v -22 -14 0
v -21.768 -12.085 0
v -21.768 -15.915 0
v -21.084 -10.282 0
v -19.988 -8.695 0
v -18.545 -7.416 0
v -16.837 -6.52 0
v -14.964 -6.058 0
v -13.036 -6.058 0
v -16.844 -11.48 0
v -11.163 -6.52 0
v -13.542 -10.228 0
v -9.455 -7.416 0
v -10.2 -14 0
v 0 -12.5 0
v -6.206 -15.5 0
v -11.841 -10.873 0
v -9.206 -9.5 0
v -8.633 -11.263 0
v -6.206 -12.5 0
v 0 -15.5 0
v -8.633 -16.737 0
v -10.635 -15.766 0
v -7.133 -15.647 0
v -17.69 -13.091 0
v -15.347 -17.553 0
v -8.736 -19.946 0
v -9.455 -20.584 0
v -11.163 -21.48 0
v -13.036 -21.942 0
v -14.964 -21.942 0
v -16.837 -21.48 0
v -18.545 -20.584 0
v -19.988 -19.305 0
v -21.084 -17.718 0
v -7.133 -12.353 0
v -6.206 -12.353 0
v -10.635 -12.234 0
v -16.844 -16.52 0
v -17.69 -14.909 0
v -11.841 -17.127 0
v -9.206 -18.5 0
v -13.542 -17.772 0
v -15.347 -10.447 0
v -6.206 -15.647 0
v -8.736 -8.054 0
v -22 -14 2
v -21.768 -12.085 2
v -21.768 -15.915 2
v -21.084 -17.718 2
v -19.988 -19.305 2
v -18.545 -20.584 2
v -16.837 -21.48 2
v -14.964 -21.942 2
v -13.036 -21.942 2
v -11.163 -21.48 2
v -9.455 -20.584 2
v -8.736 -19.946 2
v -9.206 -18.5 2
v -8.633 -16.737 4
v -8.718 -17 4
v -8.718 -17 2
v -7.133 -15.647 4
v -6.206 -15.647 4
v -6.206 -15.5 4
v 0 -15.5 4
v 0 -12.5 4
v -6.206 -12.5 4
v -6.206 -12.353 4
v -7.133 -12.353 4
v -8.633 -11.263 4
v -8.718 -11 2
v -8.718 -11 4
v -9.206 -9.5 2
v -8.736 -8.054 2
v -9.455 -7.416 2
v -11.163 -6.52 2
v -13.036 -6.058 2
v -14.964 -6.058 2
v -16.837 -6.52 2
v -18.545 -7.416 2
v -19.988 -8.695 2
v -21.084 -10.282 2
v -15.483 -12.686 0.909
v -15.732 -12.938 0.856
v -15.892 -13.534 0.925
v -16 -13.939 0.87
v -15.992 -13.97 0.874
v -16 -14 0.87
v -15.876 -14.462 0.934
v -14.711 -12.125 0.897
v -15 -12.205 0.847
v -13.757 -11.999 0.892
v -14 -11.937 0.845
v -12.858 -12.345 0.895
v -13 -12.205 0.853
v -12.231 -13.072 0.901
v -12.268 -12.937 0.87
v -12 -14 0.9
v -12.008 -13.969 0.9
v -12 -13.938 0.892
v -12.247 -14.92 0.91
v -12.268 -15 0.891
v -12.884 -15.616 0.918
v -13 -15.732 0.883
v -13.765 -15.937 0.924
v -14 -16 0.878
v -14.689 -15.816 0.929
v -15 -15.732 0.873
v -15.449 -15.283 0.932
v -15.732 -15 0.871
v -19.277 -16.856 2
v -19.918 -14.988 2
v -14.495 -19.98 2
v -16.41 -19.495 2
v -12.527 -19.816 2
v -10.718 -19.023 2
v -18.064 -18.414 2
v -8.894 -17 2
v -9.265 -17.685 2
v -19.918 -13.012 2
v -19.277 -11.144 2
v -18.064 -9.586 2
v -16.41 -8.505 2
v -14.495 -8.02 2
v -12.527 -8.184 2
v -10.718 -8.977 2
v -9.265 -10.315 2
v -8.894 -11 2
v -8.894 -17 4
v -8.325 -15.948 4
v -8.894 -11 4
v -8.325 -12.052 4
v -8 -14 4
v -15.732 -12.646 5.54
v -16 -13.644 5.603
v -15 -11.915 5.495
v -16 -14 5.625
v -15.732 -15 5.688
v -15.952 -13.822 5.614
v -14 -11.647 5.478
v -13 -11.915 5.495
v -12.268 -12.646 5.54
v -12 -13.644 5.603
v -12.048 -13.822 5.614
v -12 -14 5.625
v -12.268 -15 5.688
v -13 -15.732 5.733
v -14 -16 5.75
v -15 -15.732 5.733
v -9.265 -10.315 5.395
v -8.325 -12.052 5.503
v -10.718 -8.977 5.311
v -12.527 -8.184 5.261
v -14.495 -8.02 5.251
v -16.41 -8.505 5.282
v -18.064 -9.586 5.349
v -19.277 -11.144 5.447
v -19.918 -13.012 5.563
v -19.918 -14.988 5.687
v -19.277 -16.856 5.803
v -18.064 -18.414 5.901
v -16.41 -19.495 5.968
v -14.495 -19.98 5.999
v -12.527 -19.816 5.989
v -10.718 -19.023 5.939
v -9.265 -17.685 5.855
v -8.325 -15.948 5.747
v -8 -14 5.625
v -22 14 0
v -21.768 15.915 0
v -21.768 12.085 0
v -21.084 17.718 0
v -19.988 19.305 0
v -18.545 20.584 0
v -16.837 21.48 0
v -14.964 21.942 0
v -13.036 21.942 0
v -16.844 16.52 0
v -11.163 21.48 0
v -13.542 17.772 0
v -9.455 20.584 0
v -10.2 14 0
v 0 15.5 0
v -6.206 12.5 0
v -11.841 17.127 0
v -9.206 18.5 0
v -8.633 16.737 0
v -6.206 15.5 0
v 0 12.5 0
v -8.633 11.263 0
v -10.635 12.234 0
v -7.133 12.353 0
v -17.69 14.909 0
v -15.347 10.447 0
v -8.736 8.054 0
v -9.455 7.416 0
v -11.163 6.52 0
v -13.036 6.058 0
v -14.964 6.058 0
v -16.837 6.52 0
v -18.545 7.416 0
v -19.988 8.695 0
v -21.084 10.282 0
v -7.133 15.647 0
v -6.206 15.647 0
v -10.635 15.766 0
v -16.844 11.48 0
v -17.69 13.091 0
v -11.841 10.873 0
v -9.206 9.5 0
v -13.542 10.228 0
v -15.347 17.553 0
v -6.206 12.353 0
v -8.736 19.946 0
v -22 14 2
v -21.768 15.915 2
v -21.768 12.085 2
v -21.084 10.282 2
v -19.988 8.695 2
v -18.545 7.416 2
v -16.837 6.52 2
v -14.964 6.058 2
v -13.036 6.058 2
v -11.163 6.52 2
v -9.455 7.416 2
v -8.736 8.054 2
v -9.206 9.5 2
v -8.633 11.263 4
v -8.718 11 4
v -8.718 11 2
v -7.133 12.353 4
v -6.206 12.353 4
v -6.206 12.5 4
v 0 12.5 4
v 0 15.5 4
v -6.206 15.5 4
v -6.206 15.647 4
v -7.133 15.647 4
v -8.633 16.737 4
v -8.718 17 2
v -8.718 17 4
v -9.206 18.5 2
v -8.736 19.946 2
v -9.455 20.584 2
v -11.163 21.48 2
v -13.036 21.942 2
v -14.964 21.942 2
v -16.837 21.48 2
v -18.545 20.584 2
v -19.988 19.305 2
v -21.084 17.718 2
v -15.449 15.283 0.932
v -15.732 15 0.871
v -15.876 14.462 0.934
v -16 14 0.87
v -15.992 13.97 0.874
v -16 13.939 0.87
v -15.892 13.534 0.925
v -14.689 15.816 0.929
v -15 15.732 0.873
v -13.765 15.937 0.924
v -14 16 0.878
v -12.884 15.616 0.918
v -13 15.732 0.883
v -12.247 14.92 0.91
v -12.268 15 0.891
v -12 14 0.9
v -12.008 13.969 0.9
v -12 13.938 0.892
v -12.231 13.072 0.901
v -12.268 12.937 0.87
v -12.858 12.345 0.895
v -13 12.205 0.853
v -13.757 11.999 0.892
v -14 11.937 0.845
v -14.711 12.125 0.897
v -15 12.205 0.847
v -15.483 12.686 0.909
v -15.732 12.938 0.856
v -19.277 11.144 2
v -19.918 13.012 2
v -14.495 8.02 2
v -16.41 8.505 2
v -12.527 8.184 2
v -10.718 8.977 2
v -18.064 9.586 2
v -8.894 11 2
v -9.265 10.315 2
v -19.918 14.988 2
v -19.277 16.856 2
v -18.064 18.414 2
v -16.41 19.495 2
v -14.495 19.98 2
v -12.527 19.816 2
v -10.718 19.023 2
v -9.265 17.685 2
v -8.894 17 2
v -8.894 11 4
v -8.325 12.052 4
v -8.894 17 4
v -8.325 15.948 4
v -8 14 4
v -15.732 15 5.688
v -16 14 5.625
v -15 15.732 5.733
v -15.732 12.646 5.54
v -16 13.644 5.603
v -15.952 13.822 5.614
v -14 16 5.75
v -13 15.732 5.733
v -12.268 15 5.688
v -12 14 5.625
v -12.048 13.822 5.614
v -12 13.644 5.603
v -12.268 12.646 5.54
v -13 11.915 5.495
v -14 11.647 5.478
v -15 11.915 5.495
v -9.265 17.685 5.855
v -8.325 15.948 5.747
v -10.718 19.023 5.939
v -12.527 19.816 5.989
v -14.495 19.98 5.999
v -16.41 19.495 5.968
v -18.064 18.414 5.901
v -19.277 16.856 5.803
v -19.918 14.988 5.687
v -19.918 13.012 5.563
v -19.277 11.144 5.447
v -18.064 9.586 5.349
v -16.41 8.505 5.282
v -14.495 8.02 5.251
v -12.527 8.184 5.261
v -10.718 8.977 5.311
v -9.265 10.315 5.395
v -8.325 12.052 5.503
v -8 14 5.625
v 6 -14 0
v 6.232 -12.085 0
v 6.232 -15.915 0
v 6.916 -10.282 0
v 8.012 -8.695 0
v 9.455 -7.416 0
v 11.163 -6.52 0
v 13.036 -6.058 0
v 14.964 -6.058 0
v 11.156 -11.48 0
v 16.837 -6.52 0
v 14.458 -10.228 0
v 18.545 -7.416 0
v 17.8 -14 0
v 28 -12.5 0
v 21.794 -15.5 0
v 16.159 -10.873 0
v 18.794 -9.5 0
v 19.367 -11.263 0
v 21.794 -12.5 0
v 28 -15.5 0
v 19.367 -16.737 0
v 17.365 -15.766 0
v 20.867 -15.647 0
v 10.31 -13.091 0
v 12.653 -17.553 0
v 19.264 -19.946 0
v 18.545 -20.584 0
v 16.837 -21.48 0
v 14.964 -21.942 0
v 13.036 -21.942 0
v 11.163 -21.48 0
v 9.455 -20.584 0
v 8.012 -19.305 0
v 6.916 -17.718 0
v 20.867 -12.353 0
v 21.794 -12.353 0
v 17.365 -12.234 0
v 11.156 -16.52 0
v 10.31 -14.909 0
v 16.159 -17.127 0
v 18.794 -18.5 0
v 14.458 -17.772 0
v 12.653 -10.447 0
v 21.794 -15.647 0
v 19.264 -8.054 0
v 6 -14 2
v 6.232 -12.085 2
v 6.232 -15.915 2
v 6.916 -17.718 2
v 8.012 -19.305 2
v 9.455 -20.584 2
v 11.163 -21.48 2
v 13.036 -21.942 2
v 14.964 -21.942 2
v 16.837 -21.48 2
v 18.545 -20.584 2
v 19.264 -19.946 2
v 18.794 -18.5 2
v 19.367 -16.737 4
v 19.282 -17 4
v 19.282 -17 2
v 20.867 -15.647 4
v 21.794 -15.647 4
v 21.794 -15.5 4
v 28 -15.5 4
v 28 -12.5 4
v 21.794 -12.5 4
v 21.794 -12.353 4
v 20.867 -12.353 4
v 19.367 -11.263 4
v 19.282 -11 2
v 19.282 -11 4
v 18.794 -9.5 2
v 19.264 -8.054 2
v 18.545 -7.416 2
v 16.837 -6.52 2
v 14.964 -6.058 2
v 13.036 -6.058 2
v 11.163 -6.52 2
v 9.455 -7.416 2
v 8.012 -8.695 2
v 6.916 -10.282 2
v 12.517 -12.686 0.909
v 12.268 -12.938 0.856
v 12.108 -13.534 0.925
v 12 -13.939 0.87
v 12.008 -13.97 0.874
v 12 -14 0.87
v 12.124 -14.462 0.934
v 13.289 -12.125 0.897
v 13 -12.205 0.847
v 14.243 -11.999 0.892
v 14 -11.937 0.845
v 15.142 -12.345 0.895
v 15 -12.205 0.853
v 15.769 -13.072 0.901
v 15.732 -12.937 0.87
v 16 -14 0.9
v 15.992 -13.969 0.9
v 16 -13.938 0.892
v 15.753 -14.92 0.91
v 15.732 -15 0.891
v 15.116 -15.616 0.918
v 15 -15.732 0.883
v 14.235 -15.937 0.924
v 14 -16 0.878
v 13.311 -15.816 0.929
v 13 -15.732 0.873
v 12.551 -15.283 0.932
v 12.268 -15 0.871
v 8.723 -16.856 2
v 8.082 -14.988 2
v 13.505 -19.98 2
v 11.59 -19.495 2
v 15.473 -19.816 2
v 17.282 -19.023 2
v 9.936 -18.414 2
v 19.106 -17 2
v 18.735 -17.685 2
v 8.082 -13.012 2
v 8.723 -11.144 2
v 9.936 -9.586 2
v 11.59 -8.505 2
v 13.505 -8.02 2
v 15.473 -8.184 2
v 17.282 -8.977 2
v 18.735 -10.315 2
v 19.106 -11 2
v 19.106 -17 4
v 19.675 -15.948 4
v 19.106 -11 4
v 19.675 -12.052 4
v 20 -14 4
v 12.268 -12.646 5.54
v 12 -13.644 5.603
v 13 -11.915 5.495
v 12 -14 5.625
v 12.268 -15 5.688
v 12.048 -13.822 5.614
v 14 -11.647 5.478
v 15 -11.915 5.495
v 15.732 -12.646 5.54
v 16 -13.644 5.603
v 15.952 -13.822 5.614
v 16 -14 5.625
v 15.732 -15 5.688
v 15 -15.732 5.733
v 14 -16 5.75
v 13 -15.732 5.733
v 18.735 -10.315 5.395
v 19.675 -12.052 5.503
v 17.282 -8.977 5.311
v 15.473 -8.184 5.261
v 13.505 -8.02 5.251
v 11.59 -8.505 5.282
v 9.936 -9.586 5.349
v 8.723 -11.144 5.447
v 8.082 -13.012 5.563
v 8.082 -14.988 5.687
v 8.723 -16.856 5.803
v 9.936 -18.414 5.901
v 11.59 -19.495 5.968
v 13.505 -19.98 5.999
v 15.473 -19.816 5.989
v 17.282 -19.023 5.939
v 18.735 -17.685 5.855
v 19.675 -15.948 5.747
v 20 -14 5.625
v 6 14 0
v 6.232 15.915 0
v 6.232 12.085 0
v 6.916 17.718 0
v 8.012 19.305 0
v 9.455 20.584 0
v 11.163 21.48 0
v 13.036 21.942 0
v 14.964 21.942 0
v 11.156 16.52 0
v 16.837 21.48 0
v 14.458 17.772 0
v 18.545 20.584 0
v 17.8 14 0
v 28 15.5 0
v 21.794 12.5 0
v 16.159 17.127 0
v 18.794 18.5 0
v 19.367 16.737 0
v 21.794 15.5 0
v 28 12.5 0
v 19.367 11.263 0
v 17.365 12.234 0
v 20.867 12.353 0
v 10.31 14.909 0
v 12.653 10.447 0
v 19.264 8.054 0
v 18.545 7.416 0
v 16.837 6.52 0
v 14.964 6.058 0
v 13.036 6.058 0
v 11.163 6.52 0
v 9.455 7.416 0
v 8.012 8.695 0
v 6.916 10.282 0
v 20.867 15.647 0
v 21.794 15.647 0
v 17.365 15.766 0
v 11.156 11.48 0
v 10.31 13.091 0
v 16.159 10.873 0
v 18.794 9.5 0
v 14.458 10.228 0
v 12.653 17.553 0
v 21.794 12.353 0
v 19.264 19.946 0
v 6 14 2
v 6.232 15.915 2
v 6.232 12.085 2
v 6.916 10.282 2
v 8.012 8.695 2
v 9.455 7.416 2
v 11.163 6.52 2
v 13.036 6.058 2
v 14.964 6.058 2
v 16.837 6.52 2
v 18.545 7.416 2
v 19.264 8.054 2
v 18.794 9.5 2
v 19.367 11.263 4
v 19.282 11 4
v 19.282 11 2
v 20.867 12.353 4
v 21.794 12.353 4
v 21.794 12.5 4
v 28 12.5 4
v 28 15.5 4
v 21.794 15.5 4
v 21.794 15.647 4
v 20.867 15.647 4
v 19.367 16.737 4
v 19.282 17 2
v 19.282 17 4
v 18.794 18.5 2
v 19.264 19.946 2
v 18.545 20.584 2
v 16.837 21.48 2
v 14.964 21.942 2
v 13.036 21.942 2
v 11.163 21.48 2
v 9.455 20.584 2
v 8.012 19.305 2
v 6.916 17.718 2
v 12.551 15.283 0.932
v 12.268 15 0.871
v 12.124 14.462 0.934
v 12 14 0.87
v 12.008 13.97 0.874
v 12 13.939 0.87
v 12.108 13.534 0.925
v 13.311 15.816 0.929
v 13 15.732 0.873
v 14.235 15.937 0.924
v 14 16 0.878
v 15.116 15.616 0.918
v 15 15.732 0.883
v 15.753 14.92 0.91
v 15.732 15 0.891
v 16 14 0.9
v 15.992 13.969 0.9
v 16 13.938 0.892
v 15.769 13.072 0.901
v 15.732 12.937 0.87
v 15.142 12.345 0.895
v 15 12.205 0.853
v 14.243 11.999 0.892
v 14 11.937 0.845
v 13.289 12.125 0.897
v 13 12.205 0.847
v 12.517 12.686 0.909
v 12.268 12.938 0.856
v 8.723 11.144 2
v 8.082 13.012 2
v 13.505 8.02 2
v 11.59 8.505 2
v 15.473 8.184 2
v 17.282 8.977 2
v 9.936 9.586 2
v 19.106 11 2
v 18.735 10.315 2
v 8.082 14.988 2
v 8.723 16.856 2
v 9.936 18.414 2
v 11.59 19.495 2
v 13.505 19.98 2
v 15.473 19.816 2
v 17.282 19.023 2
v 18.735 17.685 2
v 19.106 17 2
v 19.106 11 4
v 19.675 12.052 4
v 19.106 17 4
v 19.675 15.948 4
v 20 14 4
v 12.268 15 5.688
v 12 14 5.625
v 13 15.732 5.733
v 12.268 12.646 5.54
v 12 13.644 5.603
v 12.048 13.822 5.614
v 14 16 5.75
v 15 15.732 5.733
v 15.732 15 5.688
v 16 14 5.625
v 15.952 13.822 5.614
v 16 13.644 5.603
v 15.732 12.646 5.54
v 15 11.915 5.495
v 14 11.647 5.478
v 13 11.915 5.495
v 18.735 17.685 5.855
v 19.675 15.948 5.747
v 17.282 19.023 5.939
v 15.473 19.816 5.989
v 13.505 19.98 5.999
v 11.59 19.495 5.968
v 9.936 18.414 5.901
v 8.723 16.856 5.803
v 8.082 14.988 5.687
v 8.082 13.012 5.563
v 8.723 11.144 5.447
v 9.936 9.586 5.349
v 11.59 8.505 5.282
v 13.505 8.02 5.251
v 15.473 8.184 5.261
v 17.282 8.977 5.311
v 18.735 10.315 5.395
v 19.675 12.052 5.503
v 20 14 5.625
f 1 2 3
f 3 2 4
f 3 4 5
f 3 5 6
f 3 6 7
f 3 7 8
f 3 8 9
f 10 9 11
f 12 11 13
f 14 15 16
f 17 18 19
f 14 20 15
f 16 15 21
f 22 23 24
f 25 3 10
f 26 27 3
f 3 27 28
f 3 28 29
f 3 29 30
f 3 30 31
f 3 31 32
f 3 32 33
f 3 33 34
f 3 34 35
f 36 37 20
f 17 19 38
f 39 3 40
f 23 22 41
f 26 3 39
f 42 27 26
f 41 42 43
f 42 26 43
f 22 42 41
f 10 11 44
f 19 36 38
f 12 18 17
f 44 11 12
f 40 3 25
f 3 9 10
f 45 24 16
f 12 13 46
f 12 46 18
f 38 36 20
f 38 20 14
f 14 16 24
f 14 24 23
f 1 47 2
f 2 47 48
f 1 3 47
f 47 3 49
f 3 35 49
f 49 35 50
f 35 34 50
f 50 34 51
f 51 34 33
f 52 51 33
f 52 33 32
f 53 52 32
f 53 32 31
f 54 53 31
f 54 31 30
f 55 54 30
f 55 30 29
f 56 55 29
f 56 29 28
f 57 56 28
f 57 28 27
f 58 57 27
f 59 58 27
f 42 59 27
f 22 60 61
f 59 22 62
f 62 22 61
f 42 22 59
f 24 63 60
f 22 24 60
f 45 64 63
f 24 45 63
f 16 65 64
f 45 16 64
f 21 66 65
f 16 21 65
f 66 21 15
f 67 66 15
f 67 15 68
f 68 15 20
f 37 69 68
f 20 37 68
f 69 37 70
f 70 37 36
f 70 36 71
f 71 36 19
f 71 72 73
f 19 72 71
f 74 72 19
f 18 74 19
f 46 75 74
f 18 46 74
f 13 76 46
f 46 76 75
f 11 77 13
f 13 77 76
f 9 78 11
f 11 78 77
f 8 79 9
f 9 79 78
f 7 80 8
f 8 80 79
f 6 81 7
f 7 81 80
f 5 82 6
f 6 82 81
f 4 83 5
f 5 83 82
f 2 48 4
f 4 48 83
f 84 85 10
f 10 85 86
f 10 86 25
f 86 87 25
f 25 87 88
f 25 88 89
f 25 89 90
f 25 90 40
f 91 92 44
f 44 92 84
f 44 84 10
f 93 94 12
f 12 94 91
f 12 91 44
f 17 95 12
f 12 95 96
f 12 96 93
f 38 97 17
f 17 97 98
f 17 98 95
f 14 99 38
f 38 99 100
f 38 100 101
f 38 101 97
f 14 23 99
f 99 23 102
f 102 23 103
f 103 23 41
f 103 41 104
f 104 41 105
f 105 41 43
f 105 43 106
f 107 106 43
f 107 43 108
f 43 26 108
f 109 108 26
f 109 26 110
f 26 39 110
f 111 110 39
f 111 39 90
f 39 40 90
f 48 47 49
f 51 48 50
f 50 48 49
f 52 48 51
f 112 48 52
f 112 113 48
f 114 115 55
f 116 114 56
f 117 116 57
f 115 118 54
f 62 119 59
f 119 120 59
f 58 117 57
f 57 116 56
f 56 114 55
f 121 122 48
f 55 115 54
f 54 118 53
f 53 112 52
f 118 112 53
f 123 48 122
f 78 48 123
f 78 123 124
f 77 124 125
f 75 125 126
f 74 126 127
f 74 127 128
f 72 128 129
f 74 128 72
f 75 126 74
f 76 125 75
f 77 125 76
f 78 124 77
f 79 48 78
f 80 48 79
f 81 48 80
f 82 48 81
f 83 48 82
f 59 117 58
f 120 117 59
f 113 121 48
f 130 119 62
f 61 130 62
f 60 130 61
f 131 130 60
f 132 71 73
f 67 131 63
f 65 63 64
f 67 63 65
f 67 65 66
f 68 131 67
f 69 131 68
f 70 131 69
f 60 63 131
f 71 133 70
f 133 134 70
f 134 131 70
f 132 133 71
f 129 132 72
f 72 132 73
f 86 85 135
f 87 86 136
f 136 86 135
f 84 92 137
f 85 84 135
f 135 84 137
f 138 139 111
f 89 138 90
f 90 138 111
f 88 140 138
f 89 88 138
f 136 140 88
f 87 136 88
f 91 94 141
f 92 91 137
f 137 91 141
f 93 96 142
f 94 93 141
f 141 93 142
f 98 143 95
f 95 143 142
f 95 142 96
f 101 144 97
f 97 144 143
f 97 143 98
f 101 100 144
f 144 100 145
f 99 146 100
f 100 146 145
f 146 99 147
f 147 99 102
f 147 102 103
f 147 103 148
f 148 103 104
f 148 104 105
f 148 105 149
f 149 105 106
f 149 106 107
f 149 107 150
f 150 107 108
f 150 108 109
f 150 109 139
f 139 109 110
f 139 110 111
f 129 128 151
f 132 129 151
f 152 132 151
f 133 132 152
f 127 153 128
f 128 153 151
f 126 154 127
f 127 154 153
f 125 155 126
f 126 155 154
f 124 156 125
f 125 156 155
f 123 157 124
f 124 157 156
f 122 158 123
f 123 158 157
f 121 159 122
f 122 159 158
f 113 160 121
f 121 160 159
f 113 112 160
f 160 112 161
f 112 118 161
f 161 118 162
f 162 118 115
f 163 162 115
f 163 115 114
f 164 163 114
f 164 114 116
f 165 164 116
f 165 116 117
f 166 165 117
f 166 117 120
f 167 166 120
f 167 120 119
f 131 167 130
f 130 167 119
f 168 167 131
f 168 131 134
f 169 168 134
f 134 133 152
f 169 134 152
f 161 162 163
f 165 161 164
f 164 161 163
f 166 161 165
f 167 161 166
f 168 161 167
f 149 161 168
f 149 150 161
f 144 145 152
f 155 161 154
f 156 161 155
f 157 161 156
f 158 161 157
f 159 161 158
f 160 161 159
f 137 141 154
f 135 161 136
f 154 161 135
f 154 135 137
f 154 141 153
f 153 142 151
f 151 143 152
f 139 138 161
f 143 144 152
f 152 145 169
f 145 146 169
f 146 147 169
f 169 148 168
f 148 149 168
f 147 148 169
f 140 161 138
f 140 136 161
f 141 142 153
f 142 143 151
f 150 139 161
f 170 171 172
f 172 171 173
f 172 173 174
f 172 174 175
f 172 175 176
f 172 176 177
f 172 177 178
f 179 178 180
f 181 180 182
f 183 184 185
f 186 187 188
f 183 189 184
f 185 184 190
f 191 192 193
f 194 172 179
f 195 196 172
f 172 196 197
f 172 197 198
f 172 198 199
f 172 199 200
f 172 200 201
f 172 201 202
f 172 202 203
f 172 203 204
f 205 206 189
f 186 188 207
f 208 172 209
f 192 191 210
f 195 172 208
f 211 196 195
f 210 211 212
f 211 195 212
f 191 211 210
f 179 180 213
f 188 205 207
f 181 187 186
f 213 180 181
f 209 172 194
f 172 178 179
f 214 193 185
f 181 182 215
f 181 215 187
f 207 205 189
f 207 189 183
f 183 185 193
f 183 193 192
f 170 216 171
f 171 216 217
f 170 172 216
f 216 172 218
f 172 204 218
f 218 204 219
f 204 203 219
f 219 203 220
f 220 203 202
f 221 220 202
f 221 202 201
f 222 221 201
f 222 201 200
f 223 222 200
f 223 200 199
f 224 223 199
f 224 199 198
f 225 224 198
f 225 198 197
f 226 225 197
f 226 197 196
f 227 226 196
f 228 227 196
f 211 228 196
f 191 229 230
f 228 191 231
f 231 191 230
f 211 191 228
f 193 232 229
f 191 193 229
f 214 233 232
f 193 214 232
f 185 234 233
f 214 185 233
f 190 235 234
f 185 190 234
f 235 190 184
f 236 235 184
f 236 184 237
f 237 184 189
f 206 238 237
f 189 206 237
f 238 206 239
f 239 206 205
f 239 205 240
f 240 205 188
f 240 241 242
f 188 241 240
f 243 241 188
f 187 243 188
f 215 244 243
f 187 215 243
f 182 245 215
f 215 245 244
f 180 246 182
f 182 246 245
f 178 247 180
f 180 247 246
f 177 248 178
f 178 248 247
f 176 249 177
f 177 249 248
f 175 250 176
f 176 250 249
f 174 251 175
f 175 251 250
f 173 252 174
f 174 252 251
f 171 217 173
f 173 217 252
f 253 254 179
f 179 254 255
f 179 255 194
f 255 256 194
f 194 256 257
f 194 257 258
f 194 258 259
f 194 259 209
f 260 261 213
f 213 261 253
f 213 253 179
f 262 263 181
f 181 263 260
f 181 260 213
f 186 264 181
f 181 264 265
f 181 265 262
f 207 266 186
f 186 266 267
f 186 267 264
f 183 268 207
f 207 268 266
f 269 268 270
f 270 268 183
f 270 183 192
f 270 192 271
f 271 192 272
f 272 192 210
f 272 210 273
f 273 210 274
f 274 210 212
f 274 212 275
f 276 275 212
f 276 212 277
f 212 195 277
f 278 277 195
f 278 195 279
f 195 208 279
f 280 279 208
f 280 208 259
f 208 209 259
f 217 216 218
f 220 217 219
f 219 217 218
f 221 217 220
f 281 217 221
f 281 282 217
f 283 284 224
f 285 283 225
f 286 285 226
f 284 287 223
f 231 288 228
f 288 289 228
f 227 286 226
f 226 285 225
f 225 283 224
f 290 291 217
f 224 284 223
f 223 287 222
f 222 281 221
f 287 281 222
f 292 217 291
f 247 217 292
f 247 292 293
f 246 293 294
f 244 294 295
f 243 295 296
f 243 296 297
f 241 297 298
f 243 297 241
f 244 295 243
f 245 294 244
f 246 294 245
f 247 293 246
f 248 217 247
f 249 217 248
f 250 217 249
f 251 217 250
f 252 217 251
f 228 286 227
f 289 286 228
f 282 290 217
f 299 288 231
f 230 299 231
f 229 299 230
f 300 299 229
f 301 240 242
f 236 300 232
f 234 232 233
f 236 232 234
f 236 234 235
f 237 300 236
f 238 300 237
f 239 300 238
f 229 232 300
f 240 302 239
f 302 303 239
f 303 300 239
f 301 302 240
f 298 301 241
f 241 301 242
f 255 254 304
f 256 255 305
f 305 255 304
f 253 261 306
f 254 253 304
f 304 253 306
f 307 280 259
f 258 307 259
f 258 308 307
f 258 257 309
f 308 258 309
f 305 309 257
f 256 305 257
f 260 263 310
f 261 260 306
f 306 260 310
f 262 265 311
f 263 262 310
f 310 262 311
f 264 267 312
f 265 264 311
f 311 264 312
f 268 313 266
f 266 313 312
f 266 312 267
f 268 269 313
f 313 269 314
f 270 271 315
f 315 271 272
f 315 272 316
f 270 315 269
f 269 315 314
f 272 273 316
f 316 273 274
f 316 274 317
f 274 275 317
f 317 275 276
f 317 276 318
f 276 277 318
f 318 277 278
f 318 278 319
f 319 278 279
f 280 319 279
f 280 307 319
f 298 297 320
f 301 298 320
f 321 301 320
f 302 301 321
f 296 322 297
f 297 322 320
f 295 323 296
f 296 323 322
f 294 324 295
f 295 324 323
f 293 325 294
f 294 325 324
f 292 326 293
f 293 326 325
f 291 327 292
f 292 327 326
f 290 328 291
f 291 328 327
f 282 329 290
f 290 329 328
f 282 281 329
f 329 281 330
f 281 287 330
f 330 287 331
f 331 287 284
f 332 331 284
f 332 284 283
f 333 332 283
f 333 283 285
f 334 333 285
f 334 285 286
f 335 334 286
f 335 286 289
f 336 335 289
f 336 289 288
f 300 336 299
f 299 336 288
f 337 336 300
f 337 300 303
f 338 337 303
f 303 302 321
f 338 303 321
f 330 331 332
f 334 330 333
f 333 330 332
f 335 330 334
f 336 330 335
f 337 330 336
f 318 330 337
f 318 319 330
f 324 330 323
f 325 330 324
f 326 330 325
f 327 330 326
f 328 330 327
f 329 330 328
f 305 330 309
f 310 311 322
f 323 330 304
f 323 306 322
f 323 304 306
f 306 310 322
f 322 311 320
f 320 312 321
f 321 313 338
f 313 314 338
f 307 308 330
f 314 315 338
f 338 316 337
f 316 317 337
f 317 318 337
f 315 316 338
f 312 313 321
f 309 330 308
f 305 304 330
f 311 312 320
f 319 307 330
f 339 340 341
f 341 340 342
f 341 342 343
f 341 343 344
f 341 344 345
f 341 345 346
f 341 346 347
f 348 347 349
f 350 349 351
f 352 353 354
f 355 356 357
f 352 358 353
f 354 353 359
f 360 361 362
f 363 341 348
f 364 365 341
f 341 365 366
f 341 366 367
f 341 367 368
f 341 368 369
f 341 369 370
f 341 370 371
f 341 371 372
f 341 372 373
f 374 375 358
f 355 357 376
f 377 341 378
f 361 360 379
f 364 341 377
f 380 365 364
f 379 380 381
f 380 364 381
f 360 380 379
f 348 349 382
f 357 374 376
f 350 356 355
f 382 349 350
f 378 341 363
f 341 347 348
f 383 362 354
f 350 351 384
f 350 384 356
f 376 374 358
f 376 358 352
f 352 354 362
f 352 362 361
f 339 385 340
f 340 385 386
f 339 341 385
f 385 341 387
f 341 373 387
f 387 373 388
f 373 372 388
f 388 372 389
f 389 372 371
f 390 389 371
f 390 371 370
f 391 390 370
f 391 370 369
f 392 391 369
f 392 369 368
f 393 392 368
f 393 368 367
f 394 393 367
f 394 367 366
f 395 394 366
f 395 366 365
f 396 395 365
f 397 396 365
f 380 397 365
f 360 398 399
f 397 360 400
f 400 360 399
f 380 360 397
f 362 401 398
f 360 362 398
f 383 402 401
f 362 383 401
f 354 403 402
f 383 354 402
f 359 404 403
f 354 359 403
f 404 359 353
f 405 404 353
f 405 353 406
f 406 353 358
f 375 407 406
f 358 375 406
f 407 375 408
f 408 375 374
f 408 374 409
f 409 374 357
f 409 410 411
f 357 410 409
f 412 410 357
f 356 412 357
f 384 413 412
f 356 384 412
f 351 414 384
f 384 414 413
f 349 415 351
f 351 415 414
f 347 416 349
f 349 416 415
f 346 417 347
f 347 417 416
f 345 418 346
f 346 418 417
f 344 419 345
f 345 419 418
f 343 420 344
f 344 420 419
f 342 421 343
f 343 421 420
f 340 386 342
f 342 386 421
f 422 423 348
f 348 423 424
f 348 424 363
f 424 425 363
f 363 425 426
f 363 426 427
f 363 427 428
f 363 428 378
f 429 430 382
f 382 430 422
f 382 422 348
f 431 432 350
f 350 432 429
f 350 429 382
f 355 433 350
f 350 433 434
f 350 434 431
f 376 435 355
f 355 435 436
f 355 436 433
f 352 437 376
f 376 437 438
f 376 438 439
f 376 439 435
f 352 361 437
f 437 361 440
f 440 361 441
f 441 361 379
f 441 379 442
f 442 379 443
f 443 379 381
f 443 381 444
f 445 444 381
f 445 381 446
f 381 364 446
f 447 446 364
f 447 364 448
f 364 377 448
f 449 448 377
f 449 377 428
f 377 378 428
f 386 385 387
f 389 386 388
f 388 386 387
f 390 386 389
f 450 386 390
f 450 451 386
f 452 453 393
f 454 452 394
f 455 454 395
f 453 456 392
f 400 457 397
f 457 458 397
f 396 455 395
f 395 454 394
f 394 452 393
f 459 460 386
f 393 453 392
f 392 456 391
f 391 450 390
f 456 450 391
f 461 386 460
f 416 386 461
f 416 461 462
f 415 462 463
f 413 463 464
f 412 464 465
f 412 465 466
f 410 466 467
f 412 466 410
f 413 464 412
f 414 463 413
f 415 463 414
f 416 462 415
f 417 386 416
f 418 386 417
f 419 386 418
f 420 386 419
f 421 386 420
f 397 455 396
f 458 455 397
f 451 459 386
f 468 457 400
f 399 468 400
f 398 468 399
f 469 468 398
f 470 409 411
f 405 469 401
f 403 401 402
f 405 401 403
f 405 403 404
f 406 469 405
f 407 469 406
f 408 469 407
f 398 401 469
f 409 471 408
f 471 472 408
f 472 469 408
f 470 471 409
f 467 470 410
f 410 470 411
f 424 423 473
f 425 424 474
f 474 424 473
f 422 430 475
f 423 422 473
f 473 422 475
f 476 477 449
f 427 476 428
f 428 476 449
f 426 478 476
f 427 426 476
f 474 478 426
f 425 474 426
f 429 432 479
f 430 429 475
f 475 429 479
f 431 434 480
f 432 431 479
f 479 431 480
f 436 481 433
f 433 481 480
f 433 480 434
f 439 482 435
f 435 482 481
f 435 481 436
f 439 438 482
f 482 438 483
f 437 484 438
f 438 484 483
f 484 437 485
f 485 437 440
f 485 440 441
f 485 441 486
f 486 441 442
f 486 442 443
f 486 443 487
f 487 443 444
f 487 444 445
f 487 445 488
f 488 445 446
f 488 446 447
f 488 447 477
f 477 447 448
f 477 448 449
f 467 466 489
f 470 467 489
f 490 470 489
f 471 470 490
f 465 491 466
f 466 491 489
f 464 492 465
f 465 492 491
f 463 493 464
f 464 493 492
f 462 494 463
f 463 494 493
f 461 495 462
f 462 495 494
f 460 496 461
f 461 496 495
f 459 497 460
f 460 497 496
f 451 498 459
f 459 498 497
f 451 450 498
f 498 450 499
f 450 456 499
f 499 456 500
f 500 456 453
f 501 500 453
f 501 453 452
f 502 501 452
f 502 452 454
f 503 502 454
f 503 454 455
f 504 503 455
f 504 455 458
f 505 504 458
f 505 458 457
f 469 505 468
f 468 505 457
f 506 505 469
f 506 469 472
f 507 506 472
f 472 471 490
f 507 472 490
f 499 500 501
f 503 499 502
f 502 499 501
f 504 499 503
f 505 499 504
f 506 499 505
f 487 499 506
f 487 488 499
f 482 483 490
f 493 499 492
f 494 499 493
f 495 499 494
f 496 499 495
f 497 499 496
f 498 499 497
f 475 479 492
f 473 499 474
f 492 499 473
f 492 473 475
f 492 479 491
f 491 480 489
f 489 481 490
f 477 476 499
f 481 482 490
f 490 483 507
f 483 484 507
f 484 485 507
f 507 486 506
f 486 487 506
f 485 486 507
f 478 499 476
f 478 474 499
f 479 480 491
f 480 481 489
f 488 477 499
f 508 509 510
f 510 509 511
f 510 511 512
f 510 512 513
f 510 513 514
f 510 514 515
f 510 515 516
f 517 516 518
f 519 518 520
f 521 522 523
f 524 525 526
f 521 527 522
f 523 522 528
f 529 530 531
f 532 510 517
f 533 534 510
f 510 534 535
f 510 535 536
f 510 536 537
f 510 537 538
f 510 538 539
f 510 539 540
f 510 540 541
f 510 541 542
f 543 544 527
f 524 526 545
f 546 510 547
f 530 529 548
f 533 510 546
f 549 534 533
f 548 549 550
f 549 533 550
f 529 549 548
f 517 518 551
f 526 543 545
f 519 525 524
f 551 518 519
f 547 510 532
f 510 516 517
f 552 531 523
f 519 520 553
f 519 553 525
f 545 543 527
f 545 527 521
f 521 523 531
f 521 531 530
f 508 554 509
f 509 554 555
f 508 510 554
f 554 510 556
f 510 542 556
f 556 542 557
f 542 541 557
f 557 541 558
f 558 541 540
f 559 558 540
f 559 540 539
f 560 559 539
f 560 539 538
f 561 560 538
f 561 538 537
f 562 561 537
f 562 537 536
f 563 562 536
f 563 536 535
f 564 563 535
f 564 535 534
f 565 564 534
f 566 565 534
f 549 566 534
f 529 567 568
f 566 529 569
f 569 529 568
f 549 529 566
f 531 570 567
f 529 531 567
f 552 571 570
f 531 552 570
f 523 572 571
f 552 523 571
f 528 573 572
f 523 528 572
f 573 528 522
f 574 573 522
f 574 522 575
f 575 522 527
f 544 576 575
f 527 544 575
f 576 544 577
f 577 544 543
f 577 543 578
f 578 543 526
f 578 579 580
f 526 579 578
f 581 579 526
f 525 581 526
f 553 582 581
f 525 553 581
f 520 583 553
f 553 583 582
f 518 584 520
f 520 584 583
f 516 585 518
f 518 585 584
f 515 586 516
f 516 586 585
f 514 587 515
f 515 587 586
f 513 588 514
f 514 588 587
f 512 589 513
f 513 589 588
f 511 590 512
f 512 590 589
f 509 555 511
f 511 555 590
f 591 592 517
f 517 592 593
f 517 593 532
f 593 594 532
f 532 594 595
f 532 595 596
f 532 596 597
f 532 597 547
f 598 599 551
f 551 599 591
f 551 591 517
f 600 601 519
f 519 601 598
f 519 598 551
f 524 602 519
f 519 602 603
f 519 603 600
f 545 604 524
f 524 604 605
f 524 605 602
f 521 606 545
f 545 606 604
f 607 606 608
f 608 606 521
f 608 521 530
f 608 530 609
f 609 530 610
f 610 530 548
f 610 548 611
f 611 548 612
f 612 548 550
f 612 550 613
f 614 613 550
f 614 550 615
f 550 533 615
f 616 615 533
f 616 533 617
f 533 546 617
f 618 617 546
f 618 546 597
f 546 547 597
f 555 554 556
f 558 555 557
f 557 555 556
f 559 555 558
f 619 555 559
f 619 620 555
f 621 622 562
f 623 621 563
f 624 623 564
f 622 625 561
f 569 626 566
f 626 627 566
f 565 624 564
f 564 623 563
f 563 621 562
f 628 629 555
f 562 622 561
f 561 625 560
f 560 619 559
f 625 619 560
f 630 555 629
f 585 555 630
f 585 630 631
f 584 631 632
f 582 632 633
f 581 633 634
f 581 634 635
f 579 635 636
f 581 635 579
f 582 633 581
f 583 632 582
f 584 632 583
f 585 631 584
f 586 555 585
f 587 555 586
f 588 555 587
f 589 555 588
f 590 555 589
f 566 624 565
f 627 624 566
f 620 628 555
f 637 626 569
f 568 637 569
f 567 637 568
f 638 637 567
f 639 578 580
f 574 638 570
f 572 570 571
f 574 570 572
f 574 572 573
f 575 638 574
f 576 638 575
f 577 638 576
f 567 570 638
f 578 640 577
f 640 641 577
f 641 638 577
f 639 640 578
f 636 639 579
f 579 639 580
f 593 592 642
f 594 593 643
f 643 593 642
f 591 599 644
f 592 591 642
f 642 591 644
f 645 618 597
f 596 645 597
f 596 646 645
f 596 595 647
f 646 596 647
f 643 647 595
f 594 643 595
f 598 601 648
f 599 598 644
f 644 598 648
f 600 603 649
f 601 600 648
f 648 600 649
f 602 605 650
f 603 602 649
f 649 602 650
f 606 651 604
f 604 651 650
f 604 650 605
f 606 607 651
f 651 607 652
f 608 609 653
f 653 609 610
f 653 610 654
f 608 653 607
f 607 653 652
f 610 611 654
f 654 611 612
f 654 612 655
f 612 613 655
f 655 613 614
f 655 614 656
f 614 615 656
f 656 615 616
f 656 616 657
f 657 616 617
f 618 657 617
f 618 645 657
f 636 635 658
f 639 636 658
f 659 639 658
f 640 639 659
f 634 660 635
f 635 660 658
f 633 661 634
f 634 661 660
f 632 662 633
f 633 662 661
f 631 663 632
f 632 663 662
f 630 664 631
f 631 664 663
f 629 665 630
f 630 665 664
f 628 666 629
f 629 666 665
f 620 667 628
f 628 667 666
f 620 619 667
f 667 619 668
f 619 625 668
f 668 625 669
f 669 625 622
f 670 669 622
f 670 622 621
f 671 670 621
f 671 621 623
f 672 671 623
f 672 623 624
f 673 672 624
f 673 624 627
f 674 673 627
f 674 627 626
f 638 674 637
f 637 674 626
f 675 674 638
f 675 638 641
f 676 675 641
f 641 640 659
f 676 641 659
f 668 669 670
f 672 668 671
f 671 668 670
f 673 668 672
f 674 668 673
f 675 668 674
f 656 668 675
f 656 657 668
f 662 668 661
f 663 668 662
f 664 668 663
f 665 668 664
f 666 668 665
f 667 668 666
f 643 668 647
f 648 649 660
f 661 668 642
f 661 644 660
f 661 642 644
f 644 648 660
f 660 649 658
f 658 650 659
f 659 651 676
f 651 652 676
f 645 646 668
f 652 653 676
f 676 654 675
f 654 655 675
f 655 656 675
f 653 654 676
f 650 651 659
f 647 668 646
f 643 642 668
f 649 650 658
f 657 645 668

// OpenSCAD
// odh = Outside diameter of hub
// odf = Outside diameter of flange
// id = inside (hole) diameter
// rt = retainer thickness (on axis)
// ft = Flange thicckness
// ll = lever length
// lt = lever thickness (width)
// tilt = tilt angle for clamping affect
// d  = delta

tilt = 0.75; // reduction in height on shorter side of hub

module PrintBedRetainer(odh, odf, id, rt, ft, ll, lt, tilt, d)
{
    s30 = sin(30);
    c30 = cos(30);
    lfr = (odh)/2-lt;     // Lever fillet radius      
    lfp = (odh)/2+lfr;    // Lever fillet pitch radius
    intersection()
    {
        difference()
        {
            union()
            {
                cylinder(r=odh/2, h=rt);
                cylinder(r=odf/2, h=ft);
                translate([0,-odh/4,0]) cube(size=[ll, odh/2, rt-ft]);
            }
            // Hole is widened at base to allow retainer to tilt
            translate([0,0,-d]) cylinder(r=id/2, h=2*rt, $fn=12);    
            translate([0,0,-d])
                rotate([atan(tilt/odh),0,0])
                    cylinder(r=id/2, h=2*rt, $fn=12);    
            translate([c30*lfp,-s30*lfp,-d])
            {   
                cylinder(r=lfr, h=rt+2*d);
                translate([0,-lfr,0]) cube(size=[ll, lfr*2, rt+2*d] );
            }
            translate([c30*lfp,+s30*lfp,-d])
            {   
                cylinder(r=lfr, h=rt+2*d);
                translate([0,-lfr,0]) cube(size=[ll, lfr*2, rt+2*d] );
            }
            translate([0,0,rt-(abs(tilt)*0.5)])
                rotate([atan(tilt/odh),0,0])
                    translate([0,0,ft/2])
                        cube([odf+ft,odf+ft,ft], center=true);
            translate([0,0,-d])
                cylinder(r1=id, r2=0, h=id*0.5);
        }
    }
}

// Actual objects here

ll = 14;	// Lever length

for (xo = [-1, 1])
{
    for ( yo = [-1, 1])
    {
        translate([ll*xo, ll*yo, 0])
        //              od1  od2 id rt ft  ll lt             d
        PrintBedRetainer(12,  16, 4, 6, 2, ll, 3, tilt*yo, 0.1);
    }
}

////              od1  od2 id rt ft  ll lt          d
//PrintBedRetainer(12,  16, 4, 6, 2, ll, 3, tilt, 0.1);
